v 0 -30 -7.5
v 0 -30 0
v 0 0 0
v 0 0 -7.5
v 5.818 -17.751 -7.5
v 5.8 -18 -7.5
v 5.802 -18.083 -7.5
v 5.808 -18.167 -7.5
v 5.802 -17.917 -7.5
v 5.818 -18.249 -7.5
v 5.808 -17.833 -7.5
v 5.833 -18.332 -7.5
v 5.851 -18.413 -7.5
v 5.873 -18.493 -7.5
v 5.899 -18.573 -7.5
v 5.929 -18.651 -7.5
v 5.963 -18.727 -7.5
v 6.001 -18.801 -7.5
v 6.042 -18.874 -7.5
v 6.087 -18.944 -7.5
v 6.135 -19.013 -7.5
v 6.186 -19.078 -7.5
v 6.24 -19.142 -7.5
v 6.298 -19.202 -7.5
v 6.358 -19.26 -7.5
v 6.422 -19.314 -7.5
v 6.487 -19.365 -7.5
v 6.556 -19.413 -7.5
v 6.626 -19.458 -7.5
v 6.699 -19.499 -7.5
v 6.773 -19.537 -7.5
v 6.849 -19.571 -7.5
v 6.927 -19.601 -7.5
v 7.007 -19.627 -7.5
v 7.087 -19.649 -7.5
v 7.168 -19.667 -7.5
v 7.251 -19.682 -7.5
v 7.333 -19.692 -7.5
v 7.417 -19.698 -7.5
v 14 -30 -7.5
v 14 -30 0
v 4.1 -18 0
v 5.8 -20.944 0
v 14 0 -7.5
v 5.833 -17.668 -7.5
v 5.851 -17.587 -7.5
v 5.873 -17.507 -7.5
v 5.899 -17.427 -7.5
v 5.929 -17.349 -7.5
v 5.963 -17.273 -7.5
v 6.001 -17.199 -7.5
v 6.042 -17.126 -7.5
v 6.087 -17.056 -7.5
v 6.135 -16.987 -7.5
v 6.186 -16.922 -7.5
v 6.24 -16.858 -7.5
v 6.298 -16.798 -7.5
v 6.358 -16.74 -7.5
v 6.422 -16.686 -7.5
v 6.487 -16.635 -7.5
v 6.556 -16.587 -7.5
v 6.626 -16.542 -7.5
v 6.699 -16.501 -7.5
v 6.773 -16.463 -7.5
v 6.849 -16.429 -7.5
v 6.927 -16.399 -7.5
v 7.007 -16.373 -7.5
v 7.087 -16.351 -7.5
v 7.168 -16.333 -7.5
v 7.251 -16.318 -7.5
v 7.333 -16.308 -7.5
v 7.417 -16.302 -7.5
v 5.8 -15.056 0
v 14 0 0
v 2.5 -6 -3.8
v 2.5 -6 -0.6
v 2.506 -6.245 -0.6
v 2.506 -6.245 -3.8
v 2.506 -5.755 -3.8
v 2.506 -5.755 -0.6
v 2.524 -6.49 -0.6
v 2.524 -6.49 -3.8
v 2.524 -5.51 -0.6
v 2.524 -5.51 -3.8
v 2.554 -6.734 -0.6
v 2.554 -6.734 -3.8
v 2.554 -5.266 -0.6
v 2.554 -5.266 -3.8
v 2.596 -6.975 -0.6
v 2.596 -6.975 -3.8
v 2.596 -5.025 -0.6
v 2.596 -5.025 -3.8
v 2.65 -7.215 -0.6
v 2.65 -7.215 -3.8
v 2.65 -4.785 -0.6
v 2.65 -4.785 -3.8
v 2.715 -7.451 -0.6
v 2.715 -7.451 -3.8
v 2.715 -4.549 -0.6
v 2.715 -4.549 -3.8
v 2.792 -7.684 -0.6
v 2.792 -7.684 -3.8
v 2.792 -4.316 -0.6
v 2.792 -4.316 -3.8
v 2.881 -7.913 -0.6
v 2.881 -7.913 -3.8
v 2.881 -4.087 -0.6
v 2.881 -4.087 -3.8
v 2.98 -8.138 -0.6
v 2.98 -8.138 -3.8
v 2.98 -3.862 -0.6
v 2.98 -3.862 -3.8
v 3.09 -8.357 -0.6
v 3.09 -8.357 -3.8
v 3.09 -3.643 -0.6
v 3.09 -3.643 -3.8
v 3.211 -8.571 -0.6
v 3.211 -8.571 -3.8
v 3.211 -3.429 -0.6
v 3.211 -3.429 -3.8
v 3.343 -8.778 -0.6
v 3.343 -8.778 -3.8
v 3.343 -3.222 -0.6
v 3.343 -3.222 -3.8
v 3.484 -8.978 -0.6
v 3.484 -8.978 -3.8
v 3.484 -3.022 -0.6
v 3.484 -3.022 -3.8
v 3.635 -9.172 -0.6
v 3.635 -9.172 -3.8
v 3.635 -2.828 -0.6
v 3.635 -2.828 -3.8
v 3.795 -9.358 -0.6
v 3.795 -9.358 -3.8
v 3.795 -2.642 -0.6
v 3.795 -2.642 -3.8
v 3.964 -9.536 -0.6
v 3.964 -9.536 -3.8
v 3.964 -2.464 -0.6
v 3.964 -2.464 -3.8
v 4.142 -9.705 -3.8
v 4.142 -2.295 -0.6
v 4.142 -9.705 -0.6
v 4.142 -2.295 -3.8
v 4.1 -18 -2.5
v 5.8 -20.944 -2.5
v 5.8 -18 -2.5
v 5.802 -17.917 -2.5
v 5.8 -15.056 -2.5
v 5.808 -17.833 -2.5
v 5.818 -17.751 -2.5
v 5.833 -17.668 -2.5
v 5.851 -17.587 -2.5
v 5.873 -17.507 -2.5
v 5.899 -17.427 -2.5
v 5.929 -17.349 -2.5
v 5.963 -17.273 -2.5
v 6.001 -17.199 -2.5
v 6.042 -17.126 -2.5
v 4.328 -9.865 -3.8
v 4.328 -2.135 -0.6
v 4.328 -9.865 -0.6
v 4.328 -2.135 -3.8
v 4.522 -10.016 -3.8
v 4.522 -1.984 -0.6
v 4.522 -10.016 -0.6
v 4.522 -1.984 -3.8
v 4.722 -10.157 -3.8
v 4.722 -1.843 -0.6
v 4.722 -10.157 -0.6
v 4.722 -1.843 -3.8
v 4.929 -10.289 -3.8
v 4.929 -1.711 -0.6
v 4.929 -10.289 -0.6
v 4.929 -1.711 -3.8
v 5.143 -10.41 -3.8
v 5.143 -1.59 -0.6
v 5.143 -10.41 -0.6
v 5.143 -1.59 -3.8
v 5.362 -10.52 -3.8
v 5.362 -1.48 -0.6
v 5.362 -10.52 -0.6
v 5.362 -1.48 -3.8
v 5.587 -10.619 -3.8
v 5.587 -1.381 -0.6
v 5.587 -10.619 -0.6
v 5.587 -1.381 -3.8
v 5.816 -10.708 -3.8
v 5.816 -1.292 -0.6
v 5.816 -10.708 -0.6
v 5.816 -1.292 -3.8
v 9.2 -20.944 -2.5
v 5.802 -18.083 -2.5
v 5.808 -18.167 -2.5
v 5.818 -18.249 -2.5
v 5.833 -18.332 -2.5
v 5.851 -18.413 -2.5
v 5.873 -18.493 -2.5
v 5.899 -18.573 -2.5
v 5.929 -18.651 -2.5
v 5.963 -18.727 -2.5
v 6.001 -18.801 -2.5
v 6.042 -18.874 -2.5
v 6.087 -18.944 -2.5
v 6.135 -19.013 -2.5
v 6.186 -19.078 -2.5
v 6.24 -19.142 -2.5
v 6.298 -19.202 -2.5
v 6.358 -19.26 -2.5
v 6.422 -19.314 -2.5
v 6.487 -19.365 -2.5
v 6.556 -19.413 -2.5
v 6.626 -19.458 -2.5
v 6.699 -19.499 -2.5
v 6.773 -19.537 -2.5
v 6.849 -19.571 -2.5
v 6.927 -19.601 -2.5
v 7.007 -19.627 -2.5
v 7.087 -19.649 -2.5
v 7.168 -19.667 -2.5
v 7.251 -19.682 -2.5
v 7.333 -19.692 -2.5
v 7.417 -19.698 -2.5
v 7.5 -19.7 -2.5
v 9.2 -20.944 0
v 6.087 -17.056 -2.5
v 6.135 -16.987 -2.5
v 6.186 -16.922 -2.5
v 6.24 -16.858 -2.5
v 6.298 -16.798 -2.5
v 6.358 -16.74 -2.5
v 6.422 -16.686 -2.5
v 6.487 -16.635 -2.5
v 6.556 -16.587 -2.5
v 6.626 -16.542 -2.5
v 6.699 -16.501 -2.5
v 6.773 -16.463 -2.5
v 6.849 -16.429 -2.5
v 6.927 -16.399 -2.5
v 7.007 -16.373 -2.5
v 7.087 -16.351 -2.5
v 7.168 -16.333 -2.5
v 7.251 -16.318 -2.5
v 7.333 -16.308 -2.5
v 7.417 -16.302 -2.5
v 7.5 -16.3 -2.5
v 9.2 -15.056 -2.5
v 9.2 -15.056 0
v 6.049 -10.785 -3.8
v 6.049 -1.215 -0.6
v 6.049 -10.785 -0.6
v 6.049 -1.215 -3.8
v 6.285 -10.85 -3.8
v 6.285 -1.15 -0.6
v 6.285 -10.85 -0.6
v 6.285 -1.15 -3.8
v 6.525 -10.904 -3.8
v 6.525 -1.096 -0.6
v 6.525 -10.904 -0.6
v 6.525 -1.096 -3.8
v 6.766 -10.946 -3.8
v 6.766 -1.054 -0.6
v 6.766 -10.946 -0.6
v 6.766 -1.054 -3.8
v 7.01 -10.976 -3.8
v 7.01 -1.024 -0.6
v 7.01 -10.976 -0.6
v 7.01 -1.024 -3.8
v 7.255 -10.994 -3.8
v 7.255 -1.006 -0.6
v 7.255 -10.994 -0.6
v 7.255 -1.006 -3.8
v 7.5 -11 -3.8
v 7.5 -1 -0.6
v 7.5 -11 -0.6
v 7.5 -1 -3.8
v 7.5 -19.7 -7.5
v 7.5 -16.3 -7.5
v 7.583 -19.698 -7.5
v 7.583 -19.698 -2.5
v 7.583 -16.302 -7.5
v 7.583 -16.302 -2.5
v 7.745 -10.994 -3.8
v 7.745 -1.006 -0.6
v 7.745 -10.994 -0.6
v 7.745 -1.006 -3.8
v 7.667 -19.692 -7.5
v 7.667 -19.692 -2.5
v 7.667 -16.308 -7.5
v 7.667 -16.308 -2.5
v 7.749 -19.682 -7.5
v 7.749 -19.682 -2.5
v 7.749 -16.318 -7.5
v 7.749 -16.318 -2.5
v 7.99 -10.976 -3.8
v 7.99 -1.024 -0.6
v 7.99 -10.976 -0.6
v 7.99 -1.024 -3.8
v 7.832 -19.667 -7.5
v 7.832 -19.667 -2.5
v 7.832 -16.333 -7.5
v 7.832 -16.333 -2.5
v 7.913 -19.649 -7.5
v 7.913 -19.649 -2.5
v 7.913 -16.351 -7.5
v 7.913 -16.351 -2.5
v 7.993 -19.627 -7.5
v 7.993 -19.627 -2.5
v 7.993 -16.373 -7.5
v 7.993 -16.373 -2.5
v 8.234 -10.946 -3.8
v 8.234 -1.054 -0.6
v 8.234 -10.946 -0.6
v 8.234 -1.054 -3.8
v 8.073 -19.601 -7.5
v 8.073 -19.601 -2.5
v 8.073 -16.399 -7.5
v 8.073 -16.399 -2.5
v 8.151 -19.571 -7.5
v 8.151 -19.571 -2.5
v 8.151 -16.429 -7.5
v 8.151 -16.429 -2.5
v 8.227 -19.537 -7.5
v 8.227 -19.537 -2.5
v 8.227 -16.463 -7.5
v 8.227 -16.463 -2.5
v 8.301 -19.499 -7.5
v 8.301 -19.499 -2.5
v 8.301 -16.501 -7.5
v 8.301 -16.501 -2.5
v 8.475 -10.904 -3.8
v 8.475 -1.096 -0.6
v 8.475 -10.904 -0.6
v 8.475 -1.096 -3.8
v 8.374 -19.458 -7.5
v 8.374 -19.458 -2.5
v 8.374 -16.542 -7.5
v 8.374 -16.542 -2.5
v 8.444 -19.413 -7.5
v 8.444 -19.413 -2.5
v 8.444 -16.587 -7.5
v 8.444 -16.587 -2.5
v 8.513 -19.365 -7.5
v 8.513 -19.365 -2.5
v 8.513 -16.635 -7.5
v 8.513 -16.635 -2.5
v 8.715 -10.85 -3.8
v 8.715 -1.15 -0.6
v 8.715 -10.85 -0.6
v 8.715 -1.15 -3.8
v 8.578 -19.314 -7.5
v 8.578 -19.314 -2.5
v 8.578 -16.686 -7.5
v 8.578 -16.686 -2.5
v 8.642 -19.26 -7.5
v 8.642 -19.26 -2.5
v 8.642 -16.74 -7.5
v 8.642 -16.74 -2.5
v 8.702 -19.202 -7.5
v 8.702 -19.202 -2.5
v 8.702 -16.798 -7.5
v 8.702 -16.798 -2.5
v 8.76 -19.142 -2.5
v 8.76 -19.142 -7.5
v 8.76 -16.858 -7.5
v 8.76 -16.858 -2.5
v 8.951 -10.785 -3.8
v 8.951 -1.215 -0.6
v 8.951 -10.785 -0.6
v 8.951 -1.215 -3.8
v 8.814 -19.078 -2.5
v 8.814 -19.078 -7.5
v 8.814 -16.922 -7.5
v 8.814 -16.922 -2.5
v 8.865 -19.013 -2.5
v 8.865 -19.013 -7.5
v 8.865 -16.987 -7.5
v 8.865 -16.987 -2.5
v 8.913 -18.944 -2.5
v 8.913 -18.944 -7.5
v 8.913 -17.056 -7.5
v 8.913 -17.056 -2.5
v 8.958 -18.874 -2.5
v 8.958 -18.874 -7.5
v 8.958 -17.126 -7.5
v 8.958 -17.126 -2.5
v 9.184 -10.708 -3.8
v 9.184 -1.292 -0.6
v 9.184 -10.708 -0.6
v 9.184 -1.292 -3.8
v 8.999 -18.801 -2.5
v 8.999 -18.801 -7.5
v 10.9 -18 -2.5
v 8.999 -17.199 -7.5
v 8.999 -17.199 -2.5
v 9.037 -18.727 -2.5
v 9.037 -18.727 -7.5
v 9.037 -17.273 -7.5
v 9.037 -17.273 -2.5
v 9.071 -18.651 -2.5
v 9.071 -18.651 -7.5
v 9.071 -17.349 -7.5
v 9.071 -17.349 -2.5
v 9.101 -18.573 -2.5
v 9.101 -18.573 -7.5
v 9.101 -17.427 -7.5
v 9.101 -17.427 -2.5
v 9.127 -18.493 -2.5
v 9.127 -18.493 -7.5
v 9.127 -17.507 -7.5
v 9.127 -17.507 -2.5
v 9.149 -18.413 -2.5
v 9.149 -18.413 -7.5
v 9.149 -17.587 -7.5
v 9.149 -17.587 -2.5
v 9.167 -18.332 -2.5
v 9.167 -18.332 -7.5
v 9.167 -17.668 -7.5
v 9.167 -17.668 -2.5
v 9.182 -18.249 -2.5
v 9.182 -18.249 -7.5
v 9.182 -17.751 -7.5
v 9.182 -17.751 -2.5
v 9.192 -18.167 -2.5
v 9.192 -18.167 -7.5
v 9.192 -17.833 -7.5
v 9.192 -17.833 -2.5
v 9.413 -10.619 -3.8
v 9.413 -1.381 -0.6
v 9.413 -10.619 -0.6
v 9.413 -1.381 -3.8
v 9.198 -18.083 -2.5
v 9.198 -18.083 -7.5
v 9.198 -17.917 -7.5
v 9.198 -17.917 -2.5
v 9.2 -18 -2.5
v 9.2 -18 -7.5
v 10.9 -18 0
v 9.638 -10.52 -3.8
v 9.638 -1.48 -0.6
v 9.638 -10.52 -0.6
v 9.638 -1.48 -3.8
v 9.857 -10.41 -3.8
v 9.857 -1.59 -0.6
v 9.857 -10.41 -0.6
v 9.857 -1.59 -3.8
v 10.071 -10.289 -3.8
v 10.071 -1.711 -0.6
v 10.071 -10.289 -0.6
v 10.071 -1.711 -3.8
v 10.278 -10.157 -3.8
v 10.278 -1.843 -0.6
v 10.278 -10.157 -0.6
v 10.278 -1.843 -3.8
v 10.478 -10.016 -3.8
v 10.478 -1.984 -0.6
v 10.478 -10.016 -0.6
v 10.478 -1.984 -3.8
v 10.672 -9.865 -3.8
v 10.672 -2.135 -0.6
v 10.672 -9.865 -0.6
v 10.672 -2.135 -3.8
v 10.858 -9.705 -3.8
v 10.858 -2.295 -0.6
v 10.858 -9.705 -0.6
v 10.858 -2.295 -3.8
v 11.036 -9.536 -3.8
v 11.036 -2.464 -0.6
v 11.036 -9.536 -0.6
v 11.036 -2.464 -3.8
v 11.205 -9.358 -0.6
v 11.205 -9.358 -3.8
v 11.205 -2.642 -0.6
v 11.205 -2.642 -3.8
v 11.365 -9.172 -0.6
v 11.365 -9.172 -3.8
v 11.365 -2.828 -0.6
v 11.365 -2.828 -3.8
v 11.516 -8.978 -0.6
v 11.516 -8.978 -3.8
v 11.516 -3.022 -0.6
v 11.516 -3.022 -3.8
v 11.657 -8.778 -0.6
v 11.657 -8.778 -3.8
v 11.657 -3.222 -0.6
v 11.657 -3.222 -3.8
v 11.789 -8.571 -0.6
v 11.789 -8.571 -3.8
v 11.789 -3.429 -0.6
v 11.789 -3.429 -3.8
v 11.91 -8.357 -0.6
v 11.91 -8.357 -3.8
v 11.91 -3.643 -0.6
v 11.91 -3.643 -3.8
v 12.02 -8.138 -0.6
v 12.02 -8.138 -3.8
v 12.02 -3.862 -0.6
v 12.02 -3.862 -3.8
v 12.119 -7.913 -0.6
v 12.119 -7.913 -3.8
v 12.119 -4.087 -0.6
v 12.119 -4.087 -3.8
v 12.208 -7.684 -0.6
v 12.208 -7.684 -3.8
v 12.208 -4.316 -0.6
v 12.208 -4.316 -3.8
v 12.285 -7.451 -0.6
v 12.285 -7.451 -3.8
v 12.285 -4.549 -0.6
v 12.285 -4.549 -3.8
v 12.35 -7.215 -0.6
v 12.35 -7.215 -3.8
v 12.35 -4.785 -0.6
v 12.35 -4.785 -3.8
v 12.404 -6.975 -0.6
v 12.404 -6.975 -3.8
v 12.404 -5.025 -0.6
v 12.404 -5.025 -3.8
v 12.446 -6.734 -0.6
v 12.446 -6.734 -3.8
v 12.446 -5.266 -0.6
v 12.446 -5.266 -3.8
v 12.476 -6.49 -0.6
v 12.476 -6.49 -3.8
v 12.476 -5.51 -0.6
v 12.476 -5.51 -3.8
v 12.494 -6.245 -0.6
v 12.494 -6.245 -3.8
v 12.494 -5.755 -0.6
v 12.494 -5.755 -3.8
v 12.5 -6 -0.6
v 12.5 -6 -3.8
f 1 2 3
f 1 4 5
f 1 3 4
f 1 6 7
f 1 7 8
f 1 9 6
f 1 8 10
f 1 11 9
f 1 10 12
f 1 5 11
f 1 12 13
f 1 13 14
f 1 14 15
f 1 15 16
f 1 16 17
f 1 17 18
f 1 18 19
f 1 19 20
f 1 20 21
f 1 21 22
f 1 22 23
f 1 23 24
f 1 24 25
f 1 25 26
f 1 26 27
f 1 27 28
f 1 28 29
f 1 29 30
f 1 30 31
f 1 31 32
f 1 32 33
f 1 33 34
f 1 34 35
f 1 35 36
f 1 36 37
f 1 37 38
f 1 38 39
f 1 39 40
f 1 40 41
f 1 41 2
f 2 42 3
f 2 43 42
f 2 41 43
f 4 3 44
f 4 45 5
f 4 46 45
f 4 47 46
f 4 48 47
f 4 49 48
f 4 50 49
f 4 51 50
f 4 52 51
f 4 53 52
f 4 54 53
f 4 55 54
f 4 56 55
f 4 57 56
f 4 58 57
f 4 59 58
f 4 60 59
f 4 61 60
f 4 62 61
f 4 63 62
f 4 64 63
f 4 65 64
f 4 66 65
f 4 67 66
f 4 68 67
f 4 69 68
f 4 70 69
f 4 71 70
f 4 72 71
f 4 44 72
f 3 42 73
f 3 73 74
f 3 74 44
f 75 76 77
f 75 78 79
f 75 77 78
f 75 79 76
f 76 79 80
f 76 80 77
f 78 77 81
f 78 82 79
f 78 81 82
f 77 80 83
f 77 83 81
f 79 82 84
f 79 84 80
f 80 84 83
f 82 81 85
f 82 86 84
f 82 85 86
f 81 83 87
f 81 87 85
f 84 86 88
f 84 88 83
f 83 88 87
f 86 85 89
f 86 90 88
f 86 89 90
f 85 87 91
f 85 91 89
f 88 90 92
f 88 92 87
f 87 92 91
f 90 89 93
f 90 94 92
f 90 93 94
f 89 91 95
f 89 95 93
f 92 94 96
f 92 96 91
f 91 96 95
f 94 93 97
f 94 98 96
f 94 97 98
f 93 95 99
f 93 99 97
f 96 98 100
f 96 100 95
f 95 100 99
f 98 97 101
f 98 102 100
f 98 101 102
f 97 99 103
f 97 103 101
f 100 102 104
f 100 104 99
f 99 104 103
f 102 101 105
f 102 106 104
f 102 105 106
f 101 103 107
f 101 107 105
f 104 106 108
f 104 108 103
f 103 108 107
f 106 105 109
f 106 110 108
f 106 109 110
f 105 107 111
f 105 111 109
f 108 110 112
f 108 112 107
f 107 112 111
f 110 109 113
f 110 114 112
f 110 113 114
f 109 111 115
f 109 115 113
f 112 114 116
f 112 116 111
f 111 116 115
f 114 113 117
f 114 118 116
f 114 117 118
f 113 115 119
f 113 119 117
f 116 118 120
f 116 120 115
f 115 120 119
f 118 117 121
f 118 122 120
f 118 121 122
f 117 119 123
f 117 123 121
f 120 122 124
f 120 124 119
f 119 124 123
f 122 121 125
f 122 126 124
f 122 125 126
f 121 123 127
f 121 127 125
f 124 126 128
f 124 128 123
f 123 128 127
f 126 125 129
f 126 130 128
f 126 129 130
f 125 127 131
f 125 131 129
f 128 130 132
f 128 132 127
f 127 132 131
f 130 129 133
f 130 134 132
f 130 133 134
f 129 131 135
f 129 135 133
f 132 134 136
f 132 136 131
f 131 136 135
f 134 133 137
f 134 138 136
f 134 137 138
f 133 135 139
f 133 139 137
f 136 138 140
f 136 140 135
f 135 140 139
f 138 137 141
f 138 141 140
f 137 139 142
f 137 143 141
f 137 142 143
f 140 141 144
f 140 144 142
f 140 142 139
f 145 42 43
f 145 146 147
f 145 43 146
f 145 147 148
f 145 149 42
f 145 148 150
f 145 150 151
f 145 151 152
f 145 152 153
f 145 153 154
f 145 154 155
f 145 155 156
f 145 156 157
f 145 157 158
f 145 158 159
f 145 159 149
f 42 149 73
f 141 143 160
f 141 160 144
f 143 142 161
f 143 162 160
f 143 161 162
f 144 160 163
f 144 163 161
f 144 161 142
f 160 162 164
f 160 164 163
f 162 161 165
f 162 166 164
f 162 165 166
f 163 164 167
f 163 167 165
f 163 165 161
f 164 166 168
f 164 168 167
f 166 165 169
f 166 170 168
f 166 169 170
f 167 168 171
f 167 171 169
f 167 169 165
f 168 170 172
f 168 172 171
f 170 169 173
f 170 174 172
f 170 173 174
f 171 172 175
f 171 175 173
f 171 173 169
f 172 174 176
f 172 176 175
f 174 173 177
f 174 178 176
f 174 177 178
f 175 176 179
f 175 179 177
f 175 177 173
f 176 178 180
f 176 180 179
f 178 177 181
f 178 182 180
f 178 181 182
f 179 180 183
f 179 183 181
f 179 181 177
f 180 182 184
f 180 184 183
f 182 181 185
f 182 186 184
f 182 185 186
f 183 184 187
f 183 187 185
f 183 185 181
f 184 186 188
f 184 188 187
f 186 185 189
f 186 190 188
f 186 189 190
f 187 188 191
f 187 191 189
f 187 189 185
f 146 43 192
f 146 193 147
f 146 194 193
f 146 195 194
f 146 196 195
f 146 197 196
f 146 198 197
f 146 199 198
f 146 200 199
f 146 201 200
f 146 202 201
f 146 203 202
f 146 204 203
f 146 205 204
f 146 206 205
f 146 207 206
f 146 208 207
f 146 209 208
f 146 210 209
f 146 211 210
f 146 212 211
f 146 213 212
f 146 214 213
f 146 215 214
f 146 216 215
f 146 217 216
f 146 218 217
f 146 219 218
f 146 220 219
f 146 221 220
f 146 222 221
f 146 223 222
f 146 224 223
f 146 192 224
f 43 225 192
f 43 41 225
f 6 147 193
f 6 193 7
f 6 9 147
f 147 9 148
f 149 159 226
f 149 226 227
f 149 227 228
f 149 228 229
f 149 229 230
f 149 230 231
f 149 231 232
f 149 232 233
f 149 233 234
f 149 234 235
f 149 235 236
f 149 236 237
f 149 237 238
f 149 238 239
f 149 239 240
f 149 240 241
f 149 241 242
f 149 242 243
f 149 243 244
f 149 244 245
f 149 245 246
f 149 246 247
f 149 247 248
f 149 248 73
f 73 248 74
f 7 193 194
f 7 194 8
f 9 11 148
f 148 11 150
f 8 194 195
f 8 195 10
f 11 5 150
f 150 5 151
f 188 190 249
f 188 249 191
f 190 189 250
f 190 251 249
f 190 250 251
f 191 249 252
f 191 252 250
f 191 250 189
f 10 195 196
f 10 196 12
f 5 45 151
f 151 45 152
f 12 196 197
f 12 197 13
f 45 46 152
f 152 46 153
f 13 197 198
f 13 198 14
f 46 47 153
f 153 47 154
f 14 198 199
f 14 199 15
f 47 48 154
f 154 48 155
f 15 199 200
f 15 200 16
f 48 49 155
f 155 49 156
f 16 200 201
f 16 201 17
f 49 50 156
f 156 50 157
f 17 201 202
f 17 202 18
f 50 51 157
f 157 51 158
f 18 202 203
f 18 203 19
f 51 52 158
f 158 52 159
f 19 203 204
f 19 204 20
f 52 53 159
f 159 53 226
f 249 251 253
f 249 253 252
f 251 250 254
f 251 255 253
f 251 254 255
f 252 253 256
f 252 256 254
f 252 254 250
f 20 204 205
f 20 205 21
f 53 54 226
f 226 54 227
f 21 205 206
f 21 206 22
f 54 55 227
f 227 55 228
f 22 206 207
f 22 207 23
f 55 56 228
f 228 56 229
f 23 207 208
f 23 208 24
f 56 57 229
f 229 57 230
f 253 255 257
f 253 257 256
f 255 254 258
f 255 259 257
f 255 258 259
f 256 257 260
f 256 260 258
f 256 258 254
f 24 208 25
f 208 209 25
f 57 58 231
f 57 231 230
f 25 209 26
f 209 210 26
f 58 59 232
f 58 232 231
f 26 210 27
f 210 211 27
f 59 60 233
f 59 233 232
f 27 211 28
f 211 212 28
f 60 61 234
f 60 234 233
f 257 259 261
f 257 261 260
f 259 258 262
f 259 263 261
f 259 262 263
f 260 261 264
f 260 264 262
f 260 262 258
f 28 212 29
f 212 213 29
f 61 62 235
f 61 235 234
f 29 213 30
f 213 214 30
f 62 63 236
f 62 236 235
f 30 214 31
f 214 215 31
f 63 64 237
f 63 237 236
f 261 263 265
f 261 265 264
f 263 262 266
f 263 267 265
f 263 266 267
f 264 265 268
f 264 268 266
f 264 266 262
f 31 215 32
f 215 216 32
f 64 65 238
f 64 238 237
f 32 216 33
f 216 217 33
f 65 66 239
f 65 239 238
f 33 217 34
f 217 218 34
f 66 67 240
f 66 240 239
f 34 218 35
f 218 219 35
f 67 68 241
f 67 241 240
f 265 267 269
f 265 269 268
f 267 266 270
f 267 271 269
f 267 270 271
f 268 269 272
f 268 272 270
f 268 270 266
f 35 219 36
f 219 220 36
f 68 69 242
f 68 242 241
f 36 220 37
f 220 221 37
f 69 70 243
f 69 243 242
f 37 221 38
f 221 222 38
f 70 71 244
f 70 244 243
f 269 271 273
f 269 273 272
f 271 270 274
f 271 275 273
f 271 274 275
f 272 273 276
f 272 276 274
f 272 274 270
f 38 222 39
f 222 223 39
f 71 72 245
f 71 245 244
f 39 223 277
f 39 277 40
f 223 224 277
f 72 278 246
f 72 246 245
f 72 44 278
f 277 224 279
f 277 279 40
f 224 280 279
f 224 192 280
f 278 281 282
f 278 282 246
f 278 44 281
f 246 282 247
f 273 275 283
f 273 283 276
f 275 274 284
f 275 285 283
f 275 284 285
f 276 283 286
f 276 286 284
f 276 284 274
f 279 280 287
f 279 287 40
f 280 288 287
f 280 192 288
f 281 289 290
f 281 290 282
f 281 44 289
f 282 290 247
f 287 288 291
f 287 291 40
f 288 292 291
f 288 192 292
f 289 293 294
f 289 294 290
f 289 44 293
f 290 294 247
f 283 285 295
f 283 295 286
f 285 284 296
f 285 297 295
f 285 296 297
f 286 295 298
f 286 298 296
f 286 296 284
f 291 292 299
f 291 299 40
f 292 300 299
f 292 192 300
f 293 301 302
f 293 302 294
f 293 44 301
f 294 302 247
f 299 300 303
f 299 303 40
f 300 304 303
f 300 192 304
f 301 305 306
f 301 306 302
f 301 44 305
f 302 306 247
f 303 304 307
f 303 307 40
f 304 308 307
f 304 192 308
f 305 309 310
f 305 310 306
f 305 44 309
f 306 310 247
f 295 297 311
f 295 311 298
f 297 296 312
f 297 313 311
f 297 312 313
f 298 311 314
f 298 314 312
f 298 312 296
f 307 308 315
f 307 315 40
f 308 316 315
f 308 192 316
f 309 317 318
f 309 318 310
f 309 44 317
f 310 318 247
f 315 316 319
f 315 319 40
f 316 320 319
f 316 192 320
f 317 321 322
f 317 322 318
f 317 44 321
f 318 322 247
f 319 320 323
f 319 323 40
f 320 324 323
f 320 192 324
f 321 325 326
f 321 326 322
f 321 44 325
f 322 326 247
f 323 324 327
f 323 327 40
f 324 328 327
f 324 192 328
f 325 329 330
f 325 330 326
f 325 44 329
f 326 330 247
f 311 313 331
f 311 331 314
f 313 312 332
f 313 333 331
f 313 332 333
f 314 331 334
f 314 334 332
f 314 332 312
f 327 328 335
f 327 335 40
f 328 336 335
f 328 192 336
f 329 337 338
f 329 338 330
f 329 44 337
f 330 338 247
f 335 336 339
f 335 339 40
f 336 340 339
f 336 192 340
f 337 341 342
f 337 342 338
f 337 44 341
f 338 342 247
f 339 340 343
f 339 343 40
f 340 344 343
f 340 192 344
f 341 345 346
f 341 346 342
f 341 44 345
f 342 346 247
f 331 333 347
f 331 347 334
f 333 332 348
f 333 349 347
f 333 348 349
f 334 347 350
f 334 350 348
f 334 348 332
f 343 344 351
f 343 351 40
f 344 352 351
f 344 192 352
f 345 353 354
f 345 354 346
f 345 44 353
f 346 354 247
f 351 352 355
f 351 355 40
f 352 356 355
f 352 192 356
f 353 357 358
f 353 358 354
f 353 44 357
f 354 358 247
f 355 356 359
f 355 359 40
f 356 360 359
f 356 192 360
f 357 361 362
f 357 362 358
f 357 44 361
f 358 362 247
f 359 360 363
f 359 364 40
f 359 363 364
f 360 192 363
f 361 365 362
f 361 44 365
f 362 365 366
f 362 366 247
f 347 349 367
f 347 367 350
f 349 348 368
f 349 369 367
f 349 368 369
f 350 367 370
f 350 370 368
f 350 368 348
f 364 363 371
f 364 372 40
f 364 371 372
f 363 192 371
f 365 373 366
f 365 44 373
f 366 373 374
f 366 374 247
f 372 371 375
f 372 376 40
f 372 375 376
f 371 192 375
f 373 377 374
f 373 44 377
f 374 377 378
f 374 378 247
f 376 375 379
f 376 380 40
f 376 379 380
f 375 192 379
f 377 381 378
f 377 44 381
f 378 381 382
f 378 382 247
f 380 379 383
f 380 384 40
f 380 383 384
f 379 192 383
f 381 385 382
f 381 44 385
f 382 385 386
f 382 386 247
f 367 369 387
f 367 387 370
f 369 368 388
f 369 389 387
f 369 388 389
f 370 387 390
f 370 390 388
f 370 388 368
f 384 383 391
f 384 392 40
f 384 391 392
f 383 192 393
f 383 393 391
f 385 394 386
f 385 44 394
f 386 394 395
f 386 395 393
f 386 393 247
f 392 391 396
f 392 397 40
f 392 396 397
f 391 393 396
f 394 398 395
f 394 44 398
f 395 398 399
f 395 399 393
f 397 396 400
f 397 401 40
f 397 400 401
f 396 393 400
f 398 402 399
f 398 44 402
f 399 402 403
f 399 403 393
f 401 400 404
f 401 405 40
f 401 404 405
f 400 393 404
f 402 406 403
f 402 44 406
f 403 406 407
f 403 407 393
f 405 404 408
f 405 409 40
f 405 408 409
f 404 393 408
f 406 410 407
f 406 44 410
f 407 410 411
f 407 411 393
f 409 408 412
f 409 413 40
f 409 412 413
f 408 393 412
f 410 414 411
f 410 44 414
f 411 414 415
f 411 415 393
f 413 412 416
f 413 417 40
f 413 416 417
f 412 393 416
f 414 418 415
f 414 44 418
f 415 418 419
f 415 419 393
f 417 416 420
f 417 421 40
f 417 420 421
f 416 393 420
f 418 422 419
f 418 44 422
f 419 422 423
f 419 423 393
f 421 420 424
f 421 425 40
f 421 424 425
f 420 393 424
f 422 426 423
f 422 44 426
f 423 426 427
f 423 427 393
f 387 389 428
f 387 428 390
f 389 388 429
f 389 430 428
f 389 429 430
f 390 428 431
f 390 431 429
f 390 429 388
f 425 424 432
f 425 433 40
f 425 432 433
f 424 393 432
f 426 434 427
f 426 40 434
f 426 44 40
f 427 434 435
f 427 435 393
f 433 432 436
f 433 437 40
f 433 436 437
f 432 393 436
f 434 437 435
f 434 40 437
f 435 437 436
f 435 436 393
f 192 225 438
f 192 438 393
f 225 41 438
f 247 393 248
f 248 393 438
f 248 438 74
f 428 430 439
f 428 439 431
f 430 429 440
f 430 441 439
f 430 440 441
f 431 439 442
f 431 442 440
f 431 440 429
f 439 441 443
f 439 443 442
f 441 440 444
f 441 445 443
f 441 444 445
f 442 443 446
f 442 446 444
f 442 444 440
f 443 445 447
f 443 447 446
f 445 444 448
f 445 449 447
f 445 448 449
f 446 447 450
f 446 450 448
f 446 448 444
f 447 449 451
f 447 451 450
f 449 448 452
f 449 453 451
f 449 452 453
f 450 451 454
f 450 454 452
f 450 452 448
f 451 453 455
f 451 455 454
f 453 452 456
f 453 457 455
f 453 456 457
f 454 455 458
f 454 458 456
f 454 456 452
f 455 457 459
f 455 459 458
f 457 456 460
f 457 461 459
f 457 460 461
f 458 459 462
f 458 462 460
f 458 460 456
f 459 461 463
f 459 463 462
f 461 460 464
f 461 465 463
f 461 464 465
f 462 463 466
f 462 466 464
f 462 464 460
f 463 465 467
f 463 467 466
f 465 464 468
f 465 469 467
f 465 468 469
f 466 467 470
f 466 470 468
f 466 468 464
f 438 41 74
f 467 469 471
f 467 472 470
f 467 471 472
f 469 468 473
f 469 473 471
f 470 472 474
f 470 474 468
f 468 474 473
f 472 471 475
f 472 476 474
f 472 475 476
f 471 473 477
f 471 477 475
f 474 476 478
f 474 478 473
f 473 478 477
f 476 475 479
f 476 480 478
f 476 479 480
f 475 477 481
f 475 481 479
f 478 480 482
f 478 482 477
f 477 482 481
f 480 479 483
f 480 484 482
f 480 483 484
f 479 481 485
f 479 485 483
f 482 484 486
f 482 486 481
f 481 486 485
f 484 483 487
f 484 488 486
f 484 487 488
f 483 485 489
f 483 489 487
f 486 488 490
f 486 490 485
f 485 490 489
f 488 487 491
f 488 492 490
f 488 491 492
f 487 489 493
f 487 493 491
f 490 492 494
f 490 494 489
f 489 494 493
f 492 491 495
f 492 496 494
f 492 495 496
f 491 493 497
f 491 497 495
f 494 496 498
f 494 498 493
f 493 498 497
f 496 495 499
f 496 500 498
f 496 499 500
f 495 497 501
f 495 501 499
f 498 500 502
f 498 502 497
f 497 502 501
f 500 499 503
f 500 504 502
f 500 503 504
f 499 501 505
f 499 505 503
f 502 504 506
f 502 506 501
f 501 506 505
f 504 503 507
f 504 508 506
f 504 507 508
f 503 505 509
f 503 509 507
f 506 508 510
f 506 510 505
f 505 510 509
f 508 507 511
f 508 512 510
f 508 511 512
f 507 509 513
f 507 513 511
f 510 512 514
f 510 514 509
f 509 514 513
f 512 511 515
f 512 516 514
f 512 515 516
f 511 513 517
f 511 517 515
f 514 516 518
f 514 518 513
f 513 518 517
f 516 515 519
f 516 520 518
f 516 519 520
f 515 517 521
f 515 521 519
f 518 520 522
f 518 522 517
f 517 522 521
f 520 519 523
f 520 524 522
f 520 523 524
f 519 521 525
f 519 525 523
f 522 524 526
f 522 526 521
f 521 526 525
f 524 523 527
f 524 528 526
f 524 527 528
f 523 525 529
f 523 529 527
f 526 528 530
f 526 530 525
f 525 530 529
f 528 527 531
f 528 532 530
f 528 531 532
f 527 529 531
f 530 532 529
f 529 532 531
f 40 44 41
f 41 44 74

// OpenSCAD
$fn=100;



module test_sizes()
{
     difference(){
      cube([14,30,7.5]);
      translate([7.5,18,-.1]) cylinder(r=3.4/2,h=9,$fn=128);
      translate([7.5,18,-.1]) cylinder(r=6.8/2,h=2.6,$fn=6);
      translate([7.5,6,.6]) cylinder(r=10/2,h=3.2,$fn=128);
      }
      

}

rotate([180,0,0]) test_sizes();
